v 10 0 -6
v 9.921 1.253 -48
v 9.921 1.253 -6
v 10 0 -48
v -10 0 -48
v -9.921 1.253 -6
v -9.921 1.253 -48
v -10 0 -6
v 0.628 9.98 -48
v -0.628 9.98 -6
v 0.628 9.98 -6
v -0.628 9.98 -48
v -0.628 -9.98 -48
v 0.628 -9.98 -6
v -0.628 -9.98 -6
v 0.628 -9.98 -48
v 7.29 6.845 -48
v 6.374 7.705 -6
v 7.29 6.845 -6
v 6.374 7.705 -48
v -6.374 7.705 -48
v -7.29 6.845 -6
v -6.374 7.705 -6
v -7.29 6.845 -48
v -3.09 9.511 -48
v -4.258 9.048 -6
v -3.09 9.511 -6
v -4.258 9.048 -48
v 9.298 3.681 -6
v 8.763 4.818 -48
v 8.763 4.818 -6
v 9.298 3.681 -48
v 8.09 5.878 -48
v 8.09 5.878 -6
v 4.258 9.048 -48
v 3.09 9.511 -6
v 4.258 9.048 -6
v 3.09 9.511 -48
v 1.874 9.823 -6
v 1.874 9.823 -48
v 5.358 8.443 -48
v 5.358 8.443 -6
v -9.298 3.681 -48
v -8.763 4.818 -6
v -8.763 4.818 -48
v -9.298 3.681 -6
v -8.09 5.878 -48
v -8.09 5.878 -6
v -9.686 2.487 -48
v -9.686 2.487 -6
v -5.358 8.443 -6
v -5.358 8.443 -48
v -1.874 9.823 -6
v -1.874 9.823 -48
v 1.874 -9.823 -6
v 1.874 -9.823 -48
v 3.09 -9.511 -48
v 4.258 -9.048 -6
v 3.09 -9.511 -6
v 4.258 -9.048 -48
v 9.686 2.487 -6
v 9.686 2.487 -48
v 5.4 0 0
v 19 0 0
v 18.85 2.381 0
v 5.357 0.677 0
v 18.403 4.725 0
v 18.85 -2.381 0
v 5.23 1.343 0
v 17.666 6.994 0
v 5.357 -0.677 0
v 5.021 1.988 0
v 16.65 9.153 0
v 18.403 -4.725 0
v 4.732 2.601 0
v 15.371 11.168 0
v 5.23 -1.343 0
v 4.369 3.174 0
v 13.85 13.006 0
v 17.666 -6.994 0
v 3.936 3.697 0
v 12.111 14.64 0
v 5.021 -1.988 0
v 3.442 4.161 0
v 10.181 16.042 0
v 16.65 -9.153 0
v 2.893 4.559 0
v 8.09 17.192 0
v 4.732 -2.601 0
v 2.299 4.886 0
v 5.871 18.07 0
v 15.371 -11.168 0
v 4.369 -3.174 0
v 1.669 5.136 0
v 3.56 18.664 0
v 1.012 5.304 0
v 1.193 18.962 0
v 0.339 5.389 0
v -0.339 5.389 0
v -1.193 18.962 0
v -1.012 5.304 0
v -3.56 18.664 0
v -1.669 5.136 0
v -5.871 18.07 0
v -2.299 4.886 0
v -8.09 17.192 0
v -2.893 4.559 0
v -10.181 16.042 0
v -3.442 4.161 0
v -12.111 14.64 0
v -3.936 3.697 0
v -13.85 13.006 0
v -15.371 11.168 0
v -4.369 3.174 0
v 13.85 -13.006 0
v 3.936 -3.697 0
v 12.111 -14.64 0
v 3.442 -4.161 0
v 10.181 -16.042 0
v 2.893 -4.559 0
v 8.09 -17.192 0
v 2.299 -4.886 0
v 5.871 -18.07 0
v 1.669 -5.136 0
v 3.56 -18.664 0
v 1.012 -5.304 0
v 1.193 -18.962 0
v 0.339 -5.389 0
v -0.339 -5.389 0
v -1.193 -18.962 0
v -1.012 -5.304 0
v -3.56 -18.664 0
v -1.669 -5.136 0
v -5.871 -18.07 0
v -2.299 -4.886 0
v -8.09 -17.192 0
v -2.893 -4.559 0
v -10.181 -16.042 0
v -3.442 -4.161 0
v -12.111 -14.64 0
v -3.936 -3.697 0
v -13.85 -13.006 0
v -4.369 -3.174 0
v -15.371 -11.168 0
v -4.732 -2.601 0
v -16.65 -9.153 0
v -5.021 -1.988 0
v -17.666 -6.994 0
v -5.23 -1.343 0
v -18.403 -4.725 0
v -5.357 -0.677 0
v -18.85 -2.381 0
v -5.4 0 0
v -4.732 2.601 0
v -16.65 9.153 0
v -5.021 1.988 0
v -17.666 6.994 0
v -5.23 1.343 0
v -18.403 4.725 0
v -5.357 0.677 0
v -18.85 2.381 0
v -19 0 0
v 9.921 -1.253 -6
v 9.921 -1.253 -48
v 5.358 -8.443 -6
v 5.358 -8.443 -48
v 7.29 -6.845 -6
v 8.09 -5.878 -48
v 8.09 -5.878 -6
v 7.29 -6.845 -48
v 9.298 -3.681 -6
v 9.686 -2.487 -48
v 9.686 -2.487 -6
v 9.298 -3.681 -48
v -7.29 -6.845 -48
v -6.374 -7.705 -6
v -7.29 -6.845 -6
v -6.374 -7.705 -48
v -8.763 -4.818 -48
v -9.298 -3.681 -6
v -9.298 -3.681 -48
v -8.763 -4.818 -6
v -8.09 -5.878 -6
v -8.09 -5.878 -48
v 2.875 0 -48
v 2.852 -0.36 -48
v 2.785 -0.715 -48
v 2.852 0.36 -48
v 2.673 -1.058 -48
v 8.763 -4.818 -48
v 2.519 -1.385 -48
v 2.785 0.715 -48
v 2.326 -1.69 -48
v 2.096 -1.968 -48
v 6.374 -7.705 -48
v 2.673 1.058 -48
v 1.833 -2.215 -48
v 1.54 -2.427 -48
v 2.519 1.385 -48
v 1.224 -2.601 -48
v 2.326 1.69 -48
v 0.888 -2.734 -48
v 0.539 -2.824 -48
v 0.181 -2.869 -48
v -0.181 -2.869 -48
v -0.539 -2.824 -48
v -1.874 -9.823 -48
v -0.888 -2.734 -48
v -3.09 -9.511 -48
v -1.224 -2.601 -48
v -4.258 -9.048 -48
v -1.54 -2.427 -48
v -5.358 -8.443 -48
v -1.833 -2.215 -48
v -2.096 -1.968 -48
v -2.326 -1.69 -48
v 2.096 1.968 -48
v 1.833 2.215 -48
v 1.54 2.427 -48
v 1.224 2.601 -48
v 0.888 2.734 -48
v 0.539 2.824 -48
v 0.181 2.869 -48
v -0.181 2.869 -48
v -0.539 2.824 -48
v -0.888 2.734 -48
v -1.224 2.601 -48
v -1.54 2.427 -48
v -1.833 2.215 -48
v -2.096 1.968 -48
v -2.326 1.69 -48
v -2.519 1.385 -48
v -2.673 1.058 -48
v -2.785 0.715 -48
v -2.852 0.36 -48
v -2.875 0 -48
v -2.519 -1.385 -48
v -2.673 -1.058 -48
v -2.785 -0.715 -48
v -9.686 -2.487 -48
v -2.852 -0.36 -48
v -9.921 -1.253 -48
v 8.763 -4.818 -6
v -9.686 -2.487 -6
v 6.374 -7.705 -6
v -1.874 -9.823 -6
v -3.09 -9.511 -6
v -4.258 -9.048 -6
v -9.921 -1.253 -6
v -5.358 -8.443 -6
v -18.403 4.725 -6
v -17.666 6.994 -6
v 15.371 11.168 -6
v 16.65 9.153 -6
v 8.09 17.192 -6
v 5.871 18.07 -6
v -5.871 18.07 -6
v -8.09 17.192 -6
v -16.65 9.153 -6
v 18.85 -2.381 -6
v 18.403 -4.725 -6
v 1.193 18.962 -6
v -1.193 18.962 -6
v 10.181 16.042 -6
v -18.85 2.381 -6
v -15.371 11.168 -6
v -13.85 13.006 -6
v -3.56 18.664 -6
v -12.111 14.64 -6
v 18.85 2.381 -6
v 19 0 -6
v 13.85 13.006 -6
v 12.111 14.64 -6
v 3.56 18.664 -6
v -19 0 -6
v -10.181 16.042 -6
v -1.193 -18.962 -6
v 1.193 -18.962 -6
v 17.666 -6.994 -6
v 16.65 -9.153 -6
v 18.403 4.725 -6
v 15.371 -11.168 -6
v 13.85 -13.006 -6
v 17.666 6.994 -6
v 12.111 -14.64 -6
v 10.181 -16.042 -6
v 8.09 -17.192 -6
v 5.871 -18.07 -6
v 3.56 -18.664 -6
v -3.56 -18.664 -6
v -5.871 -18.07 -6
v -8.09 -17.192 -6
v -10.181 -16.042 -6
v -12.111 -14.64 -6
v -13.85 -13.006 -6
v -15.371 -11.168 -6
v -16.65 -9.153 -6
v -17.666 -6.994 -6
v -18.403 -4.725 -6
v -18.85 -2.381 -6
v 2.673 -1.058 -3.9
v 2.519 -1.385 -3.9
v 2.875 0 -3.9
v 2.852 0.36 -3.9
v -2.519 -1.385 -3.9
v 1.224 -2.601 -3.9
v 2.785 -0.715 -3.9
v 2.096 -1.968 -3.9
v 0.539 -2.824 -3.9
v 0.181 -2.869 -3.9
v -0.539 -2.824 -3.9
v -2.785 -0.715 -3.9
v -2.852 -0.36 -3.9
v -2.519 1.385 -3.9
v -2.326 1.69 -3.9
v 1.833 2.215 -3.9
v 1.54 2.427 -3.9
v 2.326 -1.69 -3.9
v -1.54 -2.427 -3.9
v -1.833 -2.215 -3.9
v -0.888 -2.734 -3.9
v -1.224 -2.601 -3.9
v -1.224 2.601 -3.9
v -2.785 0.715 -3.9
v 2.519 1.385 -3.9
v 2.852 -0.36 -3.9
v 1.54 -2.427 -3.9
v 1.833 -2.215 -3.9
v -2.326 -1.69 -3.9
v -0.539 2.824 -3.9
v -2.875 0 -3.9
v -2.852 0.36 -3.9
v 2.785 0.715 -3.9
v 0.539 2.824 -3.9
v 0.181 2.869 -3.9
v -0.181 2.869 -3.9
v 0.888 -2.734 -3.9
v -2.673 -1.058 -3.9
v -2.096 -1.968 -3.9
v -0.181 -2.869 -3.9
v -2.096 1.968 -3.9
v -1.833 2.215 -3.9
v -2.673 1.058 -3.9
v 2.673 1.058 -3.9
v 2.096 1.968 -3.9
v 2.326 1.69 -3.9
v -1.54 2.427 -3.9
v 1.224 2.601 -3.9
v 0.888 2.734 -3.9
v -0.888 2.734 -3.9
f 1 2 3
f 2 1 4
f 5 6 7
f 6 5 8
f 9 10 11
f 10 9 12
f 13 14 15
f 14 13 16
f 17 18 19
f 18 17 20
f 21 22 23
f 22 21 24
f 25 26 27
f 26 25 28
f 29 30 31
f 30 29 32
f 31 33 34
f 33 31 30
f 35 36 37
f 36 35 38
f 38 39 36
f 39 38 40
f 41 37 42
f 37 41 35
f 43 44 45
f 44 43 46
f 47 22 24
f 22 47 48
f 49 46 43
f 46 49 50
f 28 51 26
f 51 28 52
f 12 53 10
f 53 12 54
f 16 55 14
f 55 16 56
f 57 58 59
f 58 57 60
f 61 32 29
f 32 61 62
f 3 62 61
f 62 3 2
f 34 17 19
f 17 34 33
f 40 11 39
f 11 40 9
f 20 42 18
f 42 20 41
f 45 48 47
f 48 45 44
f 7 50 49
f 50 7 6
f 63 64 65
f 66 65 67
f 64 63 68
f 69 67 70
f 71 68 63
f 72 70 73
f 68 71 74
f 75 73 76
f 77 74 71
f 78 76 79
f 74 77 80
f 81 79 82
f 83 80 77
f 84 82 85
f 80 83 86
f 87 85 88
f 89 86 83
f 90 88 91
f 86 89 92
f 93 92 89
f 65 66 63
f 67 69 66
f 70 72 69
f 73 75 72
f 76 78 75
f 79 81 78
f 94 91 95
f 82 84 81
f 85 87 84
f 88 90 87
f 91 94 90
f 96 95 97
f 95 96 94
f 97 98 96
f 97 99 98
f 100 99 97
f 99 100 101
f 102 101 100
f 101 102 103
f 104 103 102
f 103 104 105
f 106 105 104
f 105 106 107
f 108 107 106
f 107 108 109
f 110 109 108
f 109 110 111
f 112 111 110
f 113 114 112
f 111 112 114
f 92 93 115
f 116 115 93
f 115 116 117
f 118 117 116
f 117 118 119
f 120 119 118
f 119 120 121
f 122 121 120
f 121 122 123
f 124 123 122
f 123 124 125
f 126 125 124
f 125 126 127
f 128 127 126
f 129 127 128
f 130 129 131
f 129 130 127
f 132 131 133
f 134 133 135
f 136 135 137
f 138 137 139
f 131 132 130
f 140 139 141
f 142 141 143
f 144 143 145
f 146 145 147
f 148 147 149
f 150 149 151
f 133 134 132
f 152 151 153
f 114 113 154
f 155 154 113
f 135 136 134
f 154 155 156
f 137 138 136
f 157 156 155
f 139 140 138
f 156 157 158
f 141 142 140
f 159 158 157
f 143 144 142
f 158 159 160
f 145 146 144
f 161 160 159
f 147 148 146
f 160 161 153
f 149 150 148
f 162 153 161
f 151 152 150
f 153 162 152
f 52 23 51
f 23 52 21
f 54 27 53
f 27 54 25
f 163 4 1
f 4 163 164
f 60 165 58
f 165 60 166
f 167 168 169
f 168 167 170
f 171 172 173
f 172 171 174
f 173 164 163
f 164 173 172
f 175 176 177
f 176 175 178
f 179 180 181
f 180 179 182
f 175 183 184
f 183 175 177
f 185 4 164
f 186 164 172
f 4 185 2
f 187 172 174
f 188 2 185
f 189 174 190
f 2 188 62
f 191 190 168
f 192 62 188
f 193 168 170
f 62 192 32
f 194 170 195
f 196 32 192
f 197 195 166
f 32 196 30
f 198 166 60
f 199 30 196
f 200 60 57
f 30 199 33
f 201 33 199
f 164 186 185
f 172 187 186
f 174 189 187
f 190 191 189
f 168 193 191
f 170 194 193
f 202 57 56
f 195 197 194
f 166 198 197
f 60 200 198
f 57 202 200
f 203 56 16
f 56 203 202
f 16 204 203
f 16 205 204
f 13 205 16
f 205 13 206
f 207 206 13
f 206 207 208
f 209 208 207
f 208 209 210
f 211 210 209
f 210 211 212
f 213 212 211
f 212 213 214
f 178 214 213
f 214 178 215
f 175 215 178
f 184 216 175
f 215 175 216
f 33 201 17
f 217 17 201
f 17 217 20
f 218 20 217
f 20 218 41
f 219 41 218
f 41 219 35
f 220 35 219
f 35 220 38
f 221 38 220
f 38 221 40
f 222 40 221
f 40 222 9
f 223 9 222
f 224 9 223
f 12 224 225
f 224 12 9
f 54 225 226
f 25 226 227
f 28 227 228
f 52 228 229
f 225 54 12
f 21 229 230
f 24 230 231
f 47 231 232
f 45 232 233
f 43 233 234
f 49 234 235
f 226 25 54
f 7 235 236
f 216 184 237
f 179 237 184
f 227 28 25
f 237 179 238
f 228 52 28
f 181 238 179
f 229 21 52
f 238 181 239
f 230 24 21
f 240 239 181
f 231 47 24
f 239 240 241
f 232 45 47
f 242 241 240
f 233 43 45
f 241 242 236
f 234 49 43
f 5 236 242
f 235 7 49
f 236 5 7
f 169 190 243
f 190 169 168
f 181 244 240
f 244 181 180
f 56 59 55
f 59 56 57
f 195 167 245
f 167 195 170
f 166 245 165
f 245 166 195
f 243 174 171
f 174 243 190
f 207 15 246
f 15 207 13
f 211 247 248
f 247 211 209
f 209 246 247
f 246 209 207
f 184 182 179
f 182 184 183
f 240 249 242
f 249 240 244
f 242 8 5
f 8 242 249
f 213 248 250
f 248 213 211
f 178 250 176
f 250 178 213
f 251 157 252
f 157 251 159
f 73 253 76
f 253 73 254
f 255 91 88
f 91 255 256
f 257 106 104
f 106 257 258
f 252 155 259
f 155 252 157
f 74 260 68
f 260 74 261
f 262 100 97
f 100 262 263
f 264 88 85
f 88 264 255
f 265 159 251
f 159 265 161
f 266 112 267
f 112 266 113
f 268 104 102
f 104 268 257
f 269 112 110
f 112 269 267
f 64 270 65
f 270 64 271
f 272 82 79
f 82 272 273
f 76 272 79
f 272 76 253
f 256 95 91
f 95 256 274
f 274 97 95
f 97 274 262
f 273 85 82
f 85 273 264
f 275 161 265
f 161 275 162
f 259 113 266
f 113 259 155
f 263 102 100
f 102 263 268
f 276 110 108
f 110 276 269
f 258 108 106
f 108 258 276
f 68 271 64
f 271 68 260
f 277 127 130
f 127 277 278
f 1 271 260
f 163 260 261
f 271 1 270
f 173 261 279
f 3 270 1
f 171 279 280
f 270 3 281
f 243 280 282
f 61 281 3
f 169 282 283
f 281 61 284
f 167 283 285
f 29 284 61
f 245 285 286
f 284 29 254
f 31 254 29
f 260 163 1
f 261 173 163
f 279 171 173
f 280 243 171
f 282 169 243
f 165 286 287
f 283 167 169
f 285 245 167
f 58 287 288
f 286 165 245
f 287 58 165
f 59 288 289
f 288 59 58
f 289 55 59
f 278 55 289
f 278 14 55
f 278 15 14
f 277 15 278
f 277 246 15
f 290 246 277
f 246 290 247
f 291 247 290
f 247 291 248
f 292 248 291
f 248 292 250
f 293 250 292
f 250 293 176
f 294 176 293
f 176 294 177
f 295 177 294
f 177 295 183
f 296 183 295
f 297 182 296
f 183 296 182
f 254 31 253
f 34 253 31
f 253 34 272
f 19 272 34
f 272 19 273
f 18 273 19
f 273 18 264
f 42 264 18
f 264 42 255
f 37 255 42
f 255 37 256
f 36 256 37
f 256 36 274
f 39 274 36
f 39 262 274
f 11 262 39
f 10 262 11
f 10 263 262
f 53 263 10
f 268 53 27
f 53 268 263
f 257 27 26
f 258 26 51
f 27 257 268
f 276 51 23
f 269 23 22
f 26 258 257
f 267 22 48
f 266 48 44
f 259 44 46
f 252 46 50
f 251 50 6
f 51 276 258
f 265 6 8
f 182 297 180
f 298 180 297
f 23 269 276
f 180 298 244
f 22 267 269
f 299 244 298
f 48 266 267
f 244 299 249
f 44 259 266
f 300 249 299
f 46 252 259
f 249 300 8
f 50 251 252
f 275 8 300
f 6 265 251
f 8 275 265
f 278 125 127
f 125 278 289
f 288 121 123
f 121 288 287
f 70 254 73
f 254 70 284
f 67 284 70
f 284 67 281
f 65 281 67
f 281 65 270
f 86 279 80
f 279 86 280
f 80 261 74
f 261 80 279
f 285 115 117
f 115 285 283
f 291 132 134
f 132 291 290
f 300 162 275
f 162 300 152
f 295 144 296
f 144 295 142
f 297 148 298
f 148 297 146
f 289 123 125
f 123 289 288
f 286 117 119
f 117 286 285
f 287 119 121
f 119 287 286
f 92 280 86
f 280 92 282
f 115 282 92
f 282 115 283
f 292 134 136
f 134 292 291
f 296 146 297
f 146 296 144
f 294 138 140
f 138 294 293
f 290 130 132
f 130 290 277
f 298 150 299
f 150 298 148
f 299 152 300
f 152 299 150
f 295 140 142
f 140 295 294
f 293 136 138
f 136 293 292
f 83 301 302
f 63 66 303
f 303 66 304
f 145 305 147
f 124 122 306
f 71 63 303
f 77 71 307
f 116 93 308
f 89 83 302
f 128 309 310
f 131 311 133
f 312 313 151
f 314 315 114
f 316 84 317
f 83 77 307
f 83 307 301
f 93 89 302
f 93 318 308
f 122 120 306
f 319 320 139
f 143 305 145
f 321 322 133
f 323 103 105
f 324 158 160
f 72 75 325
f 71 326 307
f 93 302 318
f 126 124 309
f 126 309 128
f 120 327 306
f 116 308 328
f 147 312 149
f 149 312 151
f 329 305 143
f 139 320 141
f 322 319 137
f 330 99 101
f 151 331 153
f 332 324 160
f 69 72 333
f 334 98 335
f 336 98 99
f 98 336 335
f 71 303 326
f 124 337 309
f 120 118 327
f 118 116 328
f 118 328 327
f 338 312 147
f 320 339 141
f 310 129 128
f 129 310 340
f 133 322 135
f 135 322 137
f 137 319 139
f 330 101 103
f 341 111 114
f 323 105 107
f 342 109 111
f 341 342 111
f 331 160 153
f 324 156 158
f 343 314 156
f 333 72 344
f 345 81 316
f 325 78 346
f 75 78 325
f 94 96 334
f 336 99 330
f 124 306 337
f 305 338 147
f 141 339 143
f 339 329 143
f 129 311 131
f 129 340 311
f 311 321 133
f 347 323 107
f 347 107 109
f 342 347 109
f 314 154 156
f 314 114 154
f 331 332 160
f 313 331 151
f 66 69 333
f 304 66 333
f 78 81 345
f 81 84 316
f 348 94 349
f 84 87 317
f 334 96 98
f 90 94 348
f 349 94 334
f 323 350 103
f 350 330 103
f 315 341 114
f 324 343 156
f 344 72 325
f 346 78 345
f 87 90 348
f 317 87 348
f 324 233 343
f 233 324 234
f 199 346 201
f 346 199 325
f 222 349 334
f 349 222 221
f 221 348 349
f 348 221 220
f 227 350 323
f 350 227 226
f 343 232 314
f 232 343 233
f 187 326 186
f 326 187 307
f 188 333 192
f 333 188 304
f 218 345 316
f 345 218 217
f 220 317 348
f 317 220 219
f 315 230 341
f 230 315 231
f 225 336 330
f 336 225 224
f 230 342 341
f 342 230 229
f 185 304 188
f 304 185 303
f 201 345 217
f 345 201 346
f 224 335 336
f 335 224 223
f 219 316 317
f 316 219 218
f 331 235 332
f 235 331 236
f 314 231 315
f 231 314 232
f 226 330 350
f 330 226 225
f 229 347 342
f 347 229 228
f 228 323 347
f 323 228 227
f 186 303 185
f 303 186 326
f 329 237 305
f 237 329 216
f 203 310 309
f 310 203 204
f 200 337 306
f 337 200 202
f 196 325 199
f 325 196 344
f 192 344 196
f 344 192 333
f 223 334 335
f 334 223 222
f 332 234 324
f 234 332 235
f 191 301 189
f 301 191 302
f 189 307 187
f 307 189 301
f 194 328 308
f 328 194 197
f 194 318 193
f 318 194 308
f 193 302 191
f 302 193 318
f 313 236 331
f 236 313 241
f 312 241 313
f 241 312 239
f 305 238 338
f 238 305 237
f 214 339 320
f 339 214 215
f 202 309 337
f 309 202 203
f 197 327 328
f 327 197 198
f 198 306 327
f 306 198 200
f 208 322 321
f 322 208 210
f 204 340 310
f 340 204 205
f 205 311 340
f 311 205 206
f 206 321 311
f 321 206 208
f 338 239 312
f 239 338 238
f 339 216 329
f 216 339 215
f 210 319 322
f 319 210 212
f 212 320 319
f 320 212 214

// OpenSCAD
$fn = 50;


difference() {
	union() {
		translate(v = [0, 0, -48.0000000000]) {
			cylinder(h = 48, r = 10.0000000000);
		}
		translate(v = [0, 0, -6.0000000000]) {
			cylinder(h = 6, r = 19.0000000000);
		}
	}
	union() {
		translate(v = [0, 0, 0]) {
			rotate(a = [0, 0, 0]) {
				difference() {
					union() {
						#translate(v = [0, 0, -48.0000000000]) {
							cylinder(h = 48, r = 2.6000000000);
						}
						#translate(v = [0, 0, -3.9000000000]) {
							cylinder(h = 3.9000000000, r = 10.0000000000, r1 = 2.8750000000, r2 = 5.4000000000);
						}
						#translate(v = [0, 0, -48.0000000000]) {
							cylinder(h = 48, r = 2.8750000000);
						}
						#translate(v = [0, 0, -48.0000000000]) {
							cylinder(h = 48, r = 2.6000000000);
						}
					}
					union();
				}
			}
		}
	}
}
